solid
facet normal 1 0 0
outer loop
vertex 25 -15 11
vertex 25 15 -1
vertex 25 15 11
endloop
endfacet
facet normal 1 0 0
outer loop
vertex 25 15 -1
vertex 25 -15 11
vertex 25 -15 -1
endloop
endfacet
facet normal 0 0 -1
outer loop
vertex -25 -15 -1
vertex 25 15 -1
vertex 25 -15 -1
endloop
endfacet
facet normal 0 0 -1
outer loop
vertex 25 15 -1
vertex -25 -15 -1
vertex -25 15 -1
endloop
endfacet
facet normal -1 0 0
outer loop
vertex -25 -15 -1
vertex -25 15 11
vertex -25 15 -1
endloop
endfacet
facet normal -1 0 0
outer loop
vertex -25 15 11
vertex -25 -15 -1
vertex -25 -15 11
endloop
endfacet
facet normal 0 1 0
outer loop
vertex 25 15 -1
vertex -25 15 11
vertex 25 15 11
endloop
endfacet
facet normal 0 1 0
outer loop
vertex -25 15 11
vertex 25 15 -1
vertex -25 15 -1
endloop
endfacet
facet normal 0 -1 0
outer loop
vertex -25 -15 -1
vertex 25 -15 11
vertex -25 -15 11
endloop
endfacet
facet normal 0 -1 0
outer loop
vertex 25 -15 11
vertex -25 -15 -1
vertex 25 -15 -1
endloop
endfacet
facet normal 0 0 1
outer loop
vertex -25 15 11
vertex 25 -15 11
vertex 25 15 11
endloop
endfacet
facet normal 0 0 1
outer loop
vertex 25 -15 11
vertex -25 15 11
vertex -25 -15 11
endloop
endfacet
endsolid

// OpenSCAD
// Define the dimensions of the rectangular plate
module rectangular_plate(length, width, thickness) {
    cube([length, width, thickness], center = true);
}

// Parameters for the rectangular plate
plate_length = 50;  // Length of the plate
plate_width = 30;   // Width of the plate
plate_thickness = 2; // Thickness of the plate

// Number of plates
num_plates = 6;

// Stack the plates uniformly in the same vertical alignment
for (i = [0 : num_plates - 1]) {
    translate([0, 0, i * plate_thickness])
        rectangular_plate(plate_length, plate_width, plate_thickness);
}
